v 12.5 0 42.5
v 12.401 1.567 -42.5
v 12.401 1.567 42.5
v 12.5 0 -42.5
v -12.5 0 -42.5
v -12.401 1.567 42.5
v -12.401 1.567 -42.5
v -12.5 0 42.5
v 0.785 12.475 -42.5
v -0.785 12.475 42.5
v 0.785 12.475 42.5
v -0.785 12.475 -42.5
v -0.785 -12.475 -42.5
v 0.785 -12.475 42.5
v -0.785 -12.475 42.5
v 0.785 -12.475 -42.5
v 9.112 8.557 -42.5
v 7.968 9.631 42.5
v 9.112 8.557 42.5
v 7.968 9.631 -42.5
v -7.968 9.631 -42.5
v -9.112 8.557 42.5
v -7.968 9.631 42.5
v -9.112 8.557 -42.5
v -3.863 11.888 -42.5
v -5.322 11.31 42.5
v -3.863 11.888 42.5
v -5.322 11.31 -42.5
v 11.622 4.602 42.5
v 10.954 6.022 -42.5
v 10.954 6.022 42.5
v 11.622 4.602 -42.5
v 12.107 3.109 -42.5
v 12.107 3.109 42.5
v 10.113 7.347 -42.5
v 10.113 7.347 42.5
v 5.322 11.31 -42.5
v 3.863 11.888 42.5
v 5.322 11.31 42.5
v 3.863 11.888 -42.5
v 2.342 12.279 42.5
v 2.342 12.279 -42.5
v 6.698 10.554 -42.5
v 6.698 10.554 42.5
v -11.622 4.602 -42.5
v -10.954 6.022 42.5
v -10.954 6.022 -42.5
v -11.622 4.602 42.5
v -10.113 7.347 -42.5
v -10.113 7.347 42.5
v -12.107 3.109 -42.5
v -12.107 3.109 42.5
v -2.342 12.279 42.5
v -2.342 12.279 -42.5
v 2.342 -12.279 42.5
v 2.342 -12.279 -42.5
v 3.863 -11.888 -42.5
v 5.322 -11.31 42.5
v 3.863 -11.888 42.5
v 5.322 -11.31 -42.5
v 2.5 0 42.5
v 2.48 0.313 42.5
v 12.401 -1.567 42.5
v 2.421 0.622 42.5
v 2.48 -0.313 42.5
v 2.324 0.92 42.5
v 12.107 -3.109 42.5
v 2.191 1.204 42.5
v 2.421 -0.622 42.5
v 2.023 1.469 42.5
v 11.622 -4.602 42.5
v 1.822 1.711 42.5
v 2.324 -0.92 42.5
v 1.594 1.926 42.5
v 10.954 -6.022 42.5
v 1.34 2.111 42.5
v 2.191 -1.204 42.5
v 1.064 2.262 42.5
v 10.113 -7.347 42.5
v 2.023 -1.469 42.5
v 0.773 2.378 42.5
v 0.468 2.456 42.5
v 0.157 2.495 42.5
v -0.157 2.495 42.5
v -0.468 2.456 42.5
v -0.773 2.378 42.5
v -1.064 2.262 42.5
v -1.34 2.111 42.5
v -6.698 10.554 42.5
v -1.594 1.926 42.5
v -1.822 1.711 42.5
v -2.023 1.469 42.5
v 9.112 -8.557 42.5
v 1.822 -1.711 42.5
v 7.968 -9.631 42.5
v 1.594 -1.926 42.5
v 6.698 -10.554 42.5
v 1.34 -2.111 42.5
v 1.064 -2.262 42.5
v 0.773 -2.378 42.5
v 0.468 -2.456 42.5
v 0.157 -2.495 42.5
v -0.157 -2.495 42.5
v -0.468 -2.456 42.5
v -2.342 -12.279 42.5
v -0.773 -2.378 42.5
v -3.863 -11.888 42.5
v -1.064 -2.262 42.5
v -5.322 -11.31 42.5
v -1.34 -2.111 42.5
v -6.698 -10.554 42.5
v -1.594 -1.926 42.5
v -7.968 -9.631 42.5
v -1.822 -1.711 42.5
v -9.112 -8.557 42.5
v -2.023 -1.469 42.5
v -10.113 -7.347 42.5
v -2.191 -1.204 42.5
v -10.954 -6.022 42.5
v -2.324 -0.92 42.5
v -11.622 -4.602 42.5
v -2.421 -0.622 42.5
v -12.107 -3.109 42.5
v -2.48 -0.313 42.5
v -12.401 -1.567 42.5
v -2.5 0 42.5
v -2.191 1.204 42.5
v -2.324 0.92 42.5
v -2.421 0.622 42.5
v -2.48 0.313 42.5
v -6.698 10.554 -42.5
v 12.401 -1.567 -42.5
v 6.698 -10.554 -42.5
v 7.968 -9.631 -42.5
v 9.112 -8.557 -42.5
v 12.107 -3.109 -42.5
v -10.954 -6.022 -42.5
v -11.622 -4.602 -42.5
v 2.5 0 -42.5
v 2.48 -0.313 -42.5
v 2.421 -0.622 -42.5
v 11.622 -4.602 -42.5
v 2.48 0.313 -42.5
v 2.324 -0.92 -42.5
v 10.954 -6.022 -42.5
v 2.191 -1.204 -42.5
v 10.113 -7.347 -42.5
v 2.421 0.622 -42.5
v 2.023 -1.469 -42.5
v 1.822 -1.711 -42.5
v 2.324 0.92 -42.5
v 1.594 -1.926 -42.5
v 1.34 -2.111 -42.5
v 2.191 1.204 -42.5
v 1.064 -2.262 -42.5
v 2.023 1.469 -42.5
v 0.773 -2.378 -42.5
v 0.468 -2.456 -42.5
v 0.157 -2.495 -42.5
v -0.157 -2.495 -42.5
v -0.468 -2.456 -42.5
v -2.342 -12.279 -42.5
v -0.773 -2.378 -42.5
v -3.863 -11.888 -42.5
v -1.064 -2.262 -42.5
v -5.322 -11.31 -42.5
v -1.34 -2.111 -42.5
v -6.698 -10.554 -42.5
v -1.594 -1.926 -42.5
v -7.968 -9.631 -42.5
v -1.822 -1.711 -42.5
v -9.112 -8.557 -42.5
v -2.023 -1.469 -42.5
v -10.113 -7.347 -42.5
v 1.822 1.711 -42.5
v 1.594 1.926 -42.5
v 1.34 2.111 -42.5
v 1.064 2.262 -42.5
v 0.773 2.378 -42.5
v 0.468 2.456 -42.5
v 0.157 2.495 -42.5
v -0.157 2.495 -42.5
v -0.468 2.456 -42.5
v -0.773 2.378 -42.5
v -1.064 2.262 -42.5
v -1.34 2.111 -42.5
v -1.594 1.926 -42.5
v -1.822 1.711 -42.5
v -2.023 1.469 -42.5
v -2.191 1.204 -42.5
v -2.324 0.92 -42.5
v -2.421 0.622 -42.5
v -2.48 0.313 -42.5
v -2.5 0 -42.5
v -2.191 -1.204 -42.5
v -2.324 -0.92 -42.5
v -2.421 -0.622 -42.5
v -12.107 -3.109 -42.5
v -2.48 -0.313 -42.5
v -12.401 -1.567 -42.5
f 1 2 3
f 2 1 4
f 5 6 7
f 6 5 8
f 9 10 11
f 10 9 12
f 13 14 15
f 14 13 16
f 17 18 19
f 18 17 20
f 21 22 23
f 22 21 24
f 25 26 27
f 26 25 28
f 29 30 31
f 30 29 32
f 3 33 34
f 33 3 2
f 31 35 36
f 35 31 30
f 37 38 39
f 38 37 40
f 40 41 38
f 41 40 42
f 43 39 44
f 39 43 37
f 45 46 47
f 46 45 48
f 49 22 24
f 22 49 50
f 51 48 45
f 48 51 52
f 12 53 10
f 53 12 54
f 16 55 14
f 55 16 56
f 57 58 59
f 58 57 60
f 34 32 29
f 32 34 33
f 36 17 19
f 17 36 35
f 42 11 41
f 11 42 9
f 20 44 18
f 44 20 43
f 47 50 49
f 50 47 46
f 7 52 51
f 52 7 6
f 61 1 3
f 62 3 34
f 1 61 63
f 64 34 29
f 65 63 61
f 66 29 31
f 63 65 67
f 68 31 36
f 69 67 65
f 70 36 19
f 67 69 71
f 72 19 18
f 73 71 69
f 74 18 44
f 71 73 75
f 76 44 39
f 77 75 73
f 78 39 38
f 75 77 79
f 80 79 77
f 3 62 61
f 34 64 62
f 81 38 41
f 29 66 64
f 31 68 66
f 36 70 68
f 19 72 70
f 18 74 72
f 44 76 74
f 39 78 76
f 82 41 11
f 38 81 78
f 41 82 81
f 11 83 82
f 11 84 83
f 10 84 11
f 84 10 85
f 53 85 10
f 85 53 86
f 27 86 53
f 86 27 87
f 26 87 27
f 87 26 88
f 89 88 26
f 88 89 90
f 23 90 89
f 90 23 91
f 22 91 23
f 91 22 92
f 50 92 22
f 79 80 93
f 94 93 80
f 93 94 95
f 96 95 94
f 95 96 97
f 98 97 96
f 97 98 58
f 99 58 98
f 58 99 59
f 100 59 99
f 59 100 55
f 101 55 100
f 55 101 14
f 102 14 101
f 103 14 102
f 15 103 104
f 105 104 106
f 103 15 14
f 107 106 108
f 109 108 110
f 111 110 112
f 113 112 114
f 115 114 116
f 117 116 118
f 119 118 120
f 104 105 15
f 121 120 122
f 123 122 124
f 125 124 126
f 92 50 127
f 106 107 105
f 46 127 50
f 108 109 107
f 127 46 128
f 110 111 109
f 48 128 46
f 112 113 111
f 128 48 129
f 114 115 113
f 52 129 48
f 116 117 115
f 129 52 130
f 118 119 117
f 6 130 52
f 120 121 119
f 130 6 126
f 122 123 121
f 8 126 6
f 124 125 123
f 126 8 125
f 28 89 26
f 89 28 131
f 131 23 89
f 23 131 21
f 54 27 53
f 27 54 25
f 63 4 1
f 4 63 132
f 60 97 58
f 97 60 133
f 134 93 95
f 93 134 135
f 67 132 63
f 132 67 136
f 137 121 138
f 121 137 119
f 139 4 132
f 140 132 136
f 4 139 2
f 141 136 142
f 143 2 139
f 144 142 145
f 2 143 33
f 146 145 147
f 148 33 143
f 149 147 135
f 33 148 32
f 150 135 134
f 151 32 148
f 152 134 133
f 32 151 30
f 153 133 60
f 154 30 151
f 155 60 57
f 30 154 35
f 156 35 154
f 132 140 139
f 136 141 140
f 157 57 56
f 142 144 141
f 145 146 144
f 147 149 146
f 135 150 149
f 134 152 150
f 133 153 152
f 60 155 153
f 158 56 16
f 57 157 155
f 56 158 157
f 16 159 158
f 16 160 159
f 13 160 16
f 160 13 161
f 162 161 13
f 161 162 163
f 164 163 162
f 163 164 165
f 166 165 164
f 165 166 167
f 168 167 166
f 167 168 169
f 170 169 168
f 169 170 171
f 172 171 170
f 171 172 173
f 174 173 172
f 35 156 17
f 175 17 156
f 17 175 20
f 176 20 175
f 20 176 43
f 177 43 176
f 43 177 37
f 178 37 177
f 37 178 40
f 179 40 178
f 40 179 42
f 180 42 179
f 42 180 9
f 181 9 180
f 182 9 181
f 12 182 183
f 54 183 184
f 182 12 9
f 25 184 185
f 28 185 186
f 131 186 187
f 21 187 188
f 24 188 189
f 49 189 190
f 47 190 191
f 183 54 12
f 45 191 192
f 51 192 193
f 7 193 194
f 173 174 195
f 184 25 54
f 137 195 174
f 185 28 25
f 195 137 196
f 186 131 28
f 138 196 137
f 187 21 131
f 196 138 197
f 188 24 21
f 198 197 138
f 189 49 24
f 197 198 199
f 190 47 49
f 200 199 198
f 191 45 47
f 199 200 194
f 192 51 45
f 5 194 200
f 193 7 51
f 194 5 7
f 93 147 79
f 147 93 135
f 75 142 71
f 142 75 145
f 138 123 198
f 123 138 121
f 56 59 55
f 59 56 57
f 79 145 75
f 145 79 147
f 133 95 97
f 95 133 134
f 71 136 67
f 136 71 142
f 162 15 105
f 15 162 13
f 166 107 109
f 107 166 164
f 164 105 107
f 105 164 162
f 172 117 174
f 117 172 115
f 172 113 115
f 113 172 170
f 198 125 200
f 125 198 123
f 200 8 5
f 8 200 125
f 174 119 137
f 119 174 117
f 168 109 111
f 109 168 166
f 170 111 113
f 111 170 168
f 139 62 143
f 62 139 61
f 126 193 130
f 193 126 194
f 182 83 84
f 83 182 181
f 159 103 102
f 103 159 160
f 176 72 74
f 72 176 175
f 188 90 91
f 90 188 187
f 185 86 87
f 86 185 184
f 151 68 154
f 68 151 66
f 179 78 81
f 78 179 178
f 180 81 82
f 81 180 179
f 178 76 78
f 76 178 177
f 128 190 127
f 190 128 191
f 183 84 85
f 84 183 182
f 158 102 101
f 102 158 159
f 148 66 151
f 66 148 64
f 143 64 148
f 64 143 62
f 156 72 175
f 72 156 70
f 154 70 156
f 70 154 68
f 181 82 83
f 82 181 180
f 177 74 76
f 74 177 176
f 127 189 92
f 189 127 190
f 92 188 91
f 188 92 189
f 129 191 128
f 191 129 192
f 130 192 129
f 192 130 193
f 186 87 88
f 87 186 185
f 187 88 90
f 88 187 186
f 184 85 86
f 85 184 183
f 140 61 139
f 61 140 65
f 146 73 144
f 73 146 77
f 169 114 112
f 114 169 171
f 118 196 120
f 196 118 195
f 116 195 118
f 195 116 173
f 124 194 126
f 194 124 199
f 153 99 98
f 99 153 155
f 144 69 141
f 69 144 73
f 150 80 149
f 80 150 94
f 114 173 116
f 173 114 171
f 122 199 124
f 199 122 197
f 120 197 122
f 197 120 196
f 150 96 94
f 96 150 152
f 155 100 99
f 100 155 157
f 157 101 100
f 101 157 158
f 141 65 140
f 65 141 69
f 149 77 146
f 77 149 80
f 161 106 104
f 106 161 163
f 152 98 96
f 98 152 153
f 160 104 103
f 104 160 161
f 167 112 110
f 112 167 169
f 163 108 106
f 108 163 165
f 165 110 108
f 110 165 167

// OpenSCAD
$fn = 50;


difference() {
	union() {
		translate(v = [0, 0, -42.5000000000]) {
			cylinder(h = 85, r = 12.5000000000);
		}
	}
	union() {
		translate(v = [0, 0, -100.0000000000]) {
			cylinder(h = 200, r = 2.5000000000);
		}
	}
}
